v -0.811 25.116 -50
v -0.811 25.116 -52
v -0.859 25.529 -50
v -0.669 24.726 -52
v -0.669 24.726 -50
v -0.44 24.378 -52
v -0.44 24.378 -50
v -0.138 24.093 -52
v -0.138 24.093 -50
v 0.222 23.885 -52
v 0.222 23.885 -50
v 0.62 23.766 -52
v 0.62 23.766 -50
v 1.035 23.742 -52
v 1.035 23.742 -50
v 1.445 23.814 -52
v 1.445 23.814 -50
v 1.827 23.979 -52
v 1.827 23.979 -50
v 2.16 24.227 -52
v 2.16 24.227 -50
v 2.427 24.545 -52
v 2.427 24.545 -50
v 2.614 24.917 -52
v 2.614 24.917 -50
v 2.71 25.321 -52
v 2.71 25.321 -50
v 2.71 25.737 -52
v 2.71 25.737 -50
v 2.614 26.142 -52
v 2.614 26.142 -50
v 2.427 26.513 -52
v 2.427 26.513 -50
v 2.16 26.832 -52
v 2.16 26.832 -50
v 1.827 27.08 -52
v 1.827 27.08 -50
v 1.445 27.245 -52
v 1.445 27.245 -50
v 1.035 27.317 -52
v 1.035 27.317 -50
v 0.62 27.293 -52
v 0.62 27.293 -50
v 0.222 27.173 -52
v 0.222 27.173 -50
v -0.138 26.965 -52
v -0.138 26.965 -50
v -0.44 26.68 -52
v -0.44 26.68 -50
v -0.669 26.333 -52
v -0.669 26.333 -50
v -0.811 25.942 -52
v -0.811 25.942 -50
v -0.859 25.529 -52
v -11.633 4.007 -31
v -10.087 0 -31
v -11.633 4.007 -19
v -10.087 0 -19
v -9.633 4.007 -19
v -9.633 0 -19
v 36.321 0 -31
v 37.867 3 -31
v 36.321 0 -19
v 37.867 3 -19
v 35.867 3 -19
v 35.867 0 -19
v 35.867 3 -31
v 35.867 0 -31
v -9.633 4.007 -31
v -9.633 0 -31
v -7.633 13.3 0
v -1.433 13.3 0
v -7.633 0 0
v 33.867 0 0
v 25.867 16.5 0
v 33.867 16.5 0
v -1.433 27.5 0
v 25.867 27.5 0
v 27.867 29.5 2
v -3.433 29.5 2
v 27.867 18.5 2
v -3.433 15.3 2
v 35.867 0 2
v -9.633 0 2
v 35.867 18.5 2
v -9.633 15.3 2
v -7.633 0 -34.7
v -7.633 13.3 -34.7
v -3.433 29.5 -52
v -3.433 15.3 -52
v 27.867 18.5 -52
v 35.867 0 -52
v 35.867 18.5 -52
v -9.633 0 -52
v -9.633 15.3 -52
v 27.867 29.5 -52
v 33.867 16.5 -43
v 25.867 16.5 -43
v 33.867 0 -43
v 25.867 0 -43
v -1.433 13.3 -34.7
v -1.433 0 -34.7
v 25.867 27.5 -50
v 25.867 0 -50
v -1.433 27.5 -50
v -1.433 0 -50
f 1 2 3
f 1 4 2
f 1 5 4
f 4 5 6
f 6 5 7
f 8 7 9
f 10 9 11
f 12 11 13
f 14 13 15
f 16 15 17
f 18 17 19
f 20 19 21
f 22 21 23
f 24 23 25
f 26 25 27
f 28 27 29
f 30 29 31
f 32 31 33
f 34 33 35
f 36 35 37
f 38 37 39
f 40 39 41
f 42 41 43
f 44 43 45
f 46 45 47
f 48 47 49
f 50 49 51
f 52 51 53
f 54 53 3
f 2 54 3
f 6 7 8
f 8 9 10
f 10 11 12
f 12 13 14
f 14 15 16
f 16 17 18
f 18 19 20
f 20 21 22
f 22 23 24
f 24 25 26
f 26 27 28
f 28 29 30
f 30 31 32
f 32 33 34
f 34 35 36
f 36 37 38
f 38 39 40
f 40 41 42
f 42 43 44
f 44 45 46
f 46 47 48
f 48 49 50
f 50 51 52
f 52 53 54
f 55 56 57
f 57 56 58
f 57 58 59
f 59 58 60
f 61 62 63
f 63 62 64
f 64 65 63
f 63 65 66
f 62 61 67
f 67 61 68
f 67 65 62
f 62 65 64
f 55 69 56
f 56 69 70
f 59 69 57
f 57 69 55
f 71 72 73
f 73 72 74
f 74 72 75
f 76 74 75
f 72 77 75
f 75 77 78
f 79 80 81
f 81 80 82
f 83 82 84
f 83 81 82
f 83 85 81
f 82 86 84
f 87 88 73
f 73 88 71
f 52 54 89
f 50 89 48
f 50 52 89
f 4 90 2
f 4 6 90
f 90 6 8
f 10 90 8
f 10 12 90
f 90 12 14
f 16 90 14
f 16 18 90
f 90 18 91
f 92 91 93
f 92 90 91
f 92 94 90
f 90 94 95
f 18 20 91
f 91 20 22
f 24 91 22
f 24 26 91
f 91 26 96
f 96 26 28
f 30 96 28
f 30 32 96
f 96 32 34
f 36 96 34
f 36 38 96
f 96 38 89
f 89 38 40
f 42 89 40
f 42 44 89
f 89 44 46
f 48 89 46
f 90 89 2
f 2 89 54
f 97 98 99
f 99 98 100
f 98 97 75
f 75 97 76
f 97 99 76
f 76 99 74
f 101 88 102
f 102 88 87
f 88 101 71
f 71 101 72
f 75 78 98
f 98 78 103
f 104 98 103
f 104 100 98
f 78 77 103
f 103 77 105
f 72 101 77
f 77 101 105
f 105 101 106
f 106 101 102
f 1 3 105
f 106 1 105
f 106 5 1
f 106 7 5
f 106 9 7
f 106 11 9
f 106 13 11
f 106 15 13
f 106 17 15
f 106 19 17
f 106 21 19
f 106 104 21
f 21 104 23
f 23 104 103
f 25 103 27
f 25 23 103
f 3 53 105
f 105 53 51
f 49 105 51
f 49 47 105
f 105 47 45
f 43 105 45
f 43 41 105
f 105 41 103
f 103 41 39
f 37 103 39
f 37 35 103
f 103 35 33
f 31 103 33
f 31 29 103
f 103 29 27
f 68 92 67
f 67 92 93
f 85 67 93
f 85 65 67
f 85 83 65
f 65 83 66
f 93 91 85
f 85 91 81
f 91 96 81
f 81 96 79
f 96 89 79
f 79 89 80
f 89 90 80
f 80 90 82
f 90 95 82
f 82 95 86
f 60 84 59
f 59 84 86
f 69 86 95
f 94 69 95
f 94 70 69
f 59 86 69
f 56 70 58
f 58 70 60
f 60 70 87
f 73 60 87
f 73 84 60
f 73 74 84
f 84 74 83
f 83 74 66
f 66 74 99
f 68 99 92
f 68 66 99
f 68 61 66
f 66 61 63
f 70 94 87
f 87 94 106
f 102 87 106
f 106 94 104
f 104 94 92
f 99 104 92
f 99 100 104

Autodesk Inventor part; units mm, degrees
ref_plane "YZ Plane" through (0, 0, 0) normal (1, 0, 0) x (0, 1, 0)
ref_plane "XZ Plane" through (0, 0, 0) normal (0, 1, 0) x (-1, 0, 0)
ref_plane "XY Plane" through (0, 0, 0) normal (0, 0, 1) x (1, 0, 0)
sketch "Sketch1" plane through (0, 0, 0) normal (0, 0, 1) x (1, 0, 0)
  line L0 (-9.6334, 0) -> (35.8666, 0)
  line L1 (35.8666, 0) -> (35.8666, 18.5)
  line L2 (35.8666, 18.5) -> (27.8666, 18.5)
  line L3 (27.8666, 18.5) -> (27.8666, 29.5)
  line L4 (27.8666, 29.5) -> (-3.4334, 29.5)
  line L5 (-3.4334, 29.5) -> (-3.4334, 15.3)
  line L6 (-3.4334, 15.3) -> (-9.6334, 15.3)
  line L7 (-9.6334, 0) -> (-9.6334, 15.3)
  point P0 (0, 0)
  dimension "d0" = 45.5
  dimension "d1" = 18.5
  dimension "d2" = 8
  dimension "d3" = 11
  dimension "d4" = 31.3
  dimension "d5" = 14.2
  dimension "d6" = 6.2
extrude "Extrusion1" add sketch "Sketch1" against normal blind 52
shell "Shell1" thickness 2 removed faces 1 at (7.5999, 5.1, 0)
sketch "Sketch2" plane through (-7.6334, 2, -50) normal (0, 0, 1) x (1, 0, 0)
  line L0 (41.5, 0) -> (0, 0) projected
  line L1 (0, 11.3) -> (6.2, 11.3)
  line L2 (6.2, 11.3) -> (6.2, 0)
  line L3 (6.2, 0) -> (0, 0)
  line L4 (0, 0) -> (0, 11.3)
  point P0 (7.6334, -2)
extrude "Extrusion2" add sketch "Sketch2" along normal blind 15.3
sketch "Sketch3" plane through (-1.4334, 2, -50) normal (0, 0, 1) x (1, 0, 0)
  line L0 (35.3, 0) -> (0, 0) projected
  line L1 (35.3, 14.5) -> (27.3, 14.5)
  line L2 (27.3, 14.5) -> (27.3, 0)
  line L3 (27.3, 0) -> (35.3, 0)
  line L4 (35.3, 0) -> (35.3, 14.5)
  point P0 (1.4334, -2)
extrude "Extrusion3" add sketch "Sketch3" along normal blind 7
sketch "Sketch4" plane through (0, 0, 0) normal (0, 0, 1) x (1, 0, 0)
  line L0 (-9.6334, 0) -> (35.8666, 0) projected
  line L1 (-7.6334, 2) -> (33.8666, 2)
  line L2 (33.8666, 2) -> (33.8666, 0)
  line L3 (33.8666, 0) -> (-7.6334, 0)
  line L4 (-7.6334, 0) -> (-7.6334, 2)
  point P0 (0, 0)
extrude "Extrusion4" cut sketch "Sketch4" against normal blind 151
sketch "Sketch5" plane through (-7.6334, 2, -52) normal (0, -1, 0) x (1, 0, 0)
  line L0 (41.5, 0) -> (0, 0) projected
  line L1 (41.5, 9) -> (41.5, 0) projected
  line L2 (41.5, 9) -> (33.5, 9) projected
  line L3 (33.5, 9) -> (33.5, 2) projected
  line L4 (33.5, 2) -> (6.2, 2) projected
  line L5 (6.2, 2) -> (6.2, 17.3) projected
  line L6 (6.2, 17.3) -> (0, 17.3) projected
  line L7 (0, 17.3) -> (0, 0) projected
  point P0 (7.6334, 52)
extrude "Extrusion5" add sketch "Sketch5" along normal blind 2
sketch "Sketch6" plane through (0, 0, 0) normal (0, 0, 1) x (1, 0, 0)
  line L0 (-3.4334, 29.5) -> (27.8666, 29.5)
  line L1 (27.8666, 29.5) -> (27.8666, 0)
  line L2 (27.8666, 0) -> (-3.4334, 0)
  line L3 (-3.4334, 0) -> (-3.4334, 29.5)
  line L4 (-9.6334, 15.3) -> (-3.4334, 15.3)
  line L5 (-3.4334, 15.3) -> (-3.4334, 0)
  line L6 (-3.4334, 0) -> (-9.6334, 0)
  line L7 (-9.6334, 0) -> (-9.6334, 15.3)
  line L8 (27.8666, 18.5) -> (35.8666, 18.5)
  line L9 (35.8666, 18.5) -> (35.8666, 0)
  line L10 (35.8666, 0) -> (27.8666, 0)
  line L11 (27.8666, 0) -> (27.8666, 18.5)
  point P0 (0, 0)
extrude "Extrusion6" add sketch "Sketch6" along normal blind 2
sketch "Sketch7" plane through (-9.6334, 0, -52) normal (-1, 0, 0) x (0, 0, 1)
  line L0 (0, 0) -> (0, 15.3) projected
  line L1 (54, 0) -> (0, 0) projected
  line L2 (21, 0) -> (33, 0)
  line L3 (33, 0) -> (33, 4.0069)
  line L4 (33, 4.0069) -> (21, 4.0069)
  line L5 (21, 4.0069) -> (21, 0)
  point P0 (52, 0)
  dimension "d20" = 54
  dimension "d21" = 12
  dimension "d22" = 21
extrude "Extrusion7" add sketch "Sketch7" along normal blind 2
sketch "Sketch8" plane through (-9.6334, 0, -52) normal (0, -1, 0) x (1, 0, 0)
  line L0 (45.5, 0) -> (45.5, 54) projected
  line L1 (45.5, 33) -> (47.5, 33)
  line L2 (47.5, 33) -> (47.5, 21)
  line L3 (47.5, 21) -> (45.5, 21)
  line L4 (45.5, 21) -> (45.5, 33)
  point P0 (9.6334, 52)
  dimension "d25" = 2
extrude "Extrusion8" add sketch "Sketch8" against normal blind 3
sketch "Sketch9" plane through (35.8666, 0, -19) normal (0, 0, 1) x (1, 0, 0)
  line L0 (2, 0) -> (0, 0) projected
  line L1 (2, 0) -> (2, 3) projected
  line L2 (0, 0) -> (0, 3) projected
  line L3 (0.454, 0) -> (2, 3)
  line L4 (2, 3) -> (2, 0)
  point P0 (-35.8666, 0)
extrude "Extrusion9" cut sketch "Sketch9" against normal blind 19.25
sketch "Sketch10" plane through (-9.6334, 0, -19) normal (0, 0, 1) x (1, 0, 0)
  line L0 (-2, 0) -> (-2, 4.0069) projected
  line L1 (0, 0) -> (-2, 0) projected
  line L2 (0, 0) -> (-0.454, 0)
  line L3 (-0.454, 0) -> (-2, 4.0069)
  line L4 (-2, 0) -> (-0.454, 0)
  line L5 (-2, 0) -> (-2, 4.0069)
  point P0 (9.6334, 0)
  dimension "d30" = 0.454
extrude "Extrusion10" cut sketch "Sketch10" against normal blind 34.5
sketch "Sketch11" plane through (0, 0, -52) normal (0, 0, -1) x (-1, 0, 0)
  circle A0 centre (-0.9313, 25.5293) radius 1.7905
  point P0 (0, 0)
extrude "Extrusion11" cut sketch "Sketch11" against normal blind 27.25
properties part number "SkateBox"
